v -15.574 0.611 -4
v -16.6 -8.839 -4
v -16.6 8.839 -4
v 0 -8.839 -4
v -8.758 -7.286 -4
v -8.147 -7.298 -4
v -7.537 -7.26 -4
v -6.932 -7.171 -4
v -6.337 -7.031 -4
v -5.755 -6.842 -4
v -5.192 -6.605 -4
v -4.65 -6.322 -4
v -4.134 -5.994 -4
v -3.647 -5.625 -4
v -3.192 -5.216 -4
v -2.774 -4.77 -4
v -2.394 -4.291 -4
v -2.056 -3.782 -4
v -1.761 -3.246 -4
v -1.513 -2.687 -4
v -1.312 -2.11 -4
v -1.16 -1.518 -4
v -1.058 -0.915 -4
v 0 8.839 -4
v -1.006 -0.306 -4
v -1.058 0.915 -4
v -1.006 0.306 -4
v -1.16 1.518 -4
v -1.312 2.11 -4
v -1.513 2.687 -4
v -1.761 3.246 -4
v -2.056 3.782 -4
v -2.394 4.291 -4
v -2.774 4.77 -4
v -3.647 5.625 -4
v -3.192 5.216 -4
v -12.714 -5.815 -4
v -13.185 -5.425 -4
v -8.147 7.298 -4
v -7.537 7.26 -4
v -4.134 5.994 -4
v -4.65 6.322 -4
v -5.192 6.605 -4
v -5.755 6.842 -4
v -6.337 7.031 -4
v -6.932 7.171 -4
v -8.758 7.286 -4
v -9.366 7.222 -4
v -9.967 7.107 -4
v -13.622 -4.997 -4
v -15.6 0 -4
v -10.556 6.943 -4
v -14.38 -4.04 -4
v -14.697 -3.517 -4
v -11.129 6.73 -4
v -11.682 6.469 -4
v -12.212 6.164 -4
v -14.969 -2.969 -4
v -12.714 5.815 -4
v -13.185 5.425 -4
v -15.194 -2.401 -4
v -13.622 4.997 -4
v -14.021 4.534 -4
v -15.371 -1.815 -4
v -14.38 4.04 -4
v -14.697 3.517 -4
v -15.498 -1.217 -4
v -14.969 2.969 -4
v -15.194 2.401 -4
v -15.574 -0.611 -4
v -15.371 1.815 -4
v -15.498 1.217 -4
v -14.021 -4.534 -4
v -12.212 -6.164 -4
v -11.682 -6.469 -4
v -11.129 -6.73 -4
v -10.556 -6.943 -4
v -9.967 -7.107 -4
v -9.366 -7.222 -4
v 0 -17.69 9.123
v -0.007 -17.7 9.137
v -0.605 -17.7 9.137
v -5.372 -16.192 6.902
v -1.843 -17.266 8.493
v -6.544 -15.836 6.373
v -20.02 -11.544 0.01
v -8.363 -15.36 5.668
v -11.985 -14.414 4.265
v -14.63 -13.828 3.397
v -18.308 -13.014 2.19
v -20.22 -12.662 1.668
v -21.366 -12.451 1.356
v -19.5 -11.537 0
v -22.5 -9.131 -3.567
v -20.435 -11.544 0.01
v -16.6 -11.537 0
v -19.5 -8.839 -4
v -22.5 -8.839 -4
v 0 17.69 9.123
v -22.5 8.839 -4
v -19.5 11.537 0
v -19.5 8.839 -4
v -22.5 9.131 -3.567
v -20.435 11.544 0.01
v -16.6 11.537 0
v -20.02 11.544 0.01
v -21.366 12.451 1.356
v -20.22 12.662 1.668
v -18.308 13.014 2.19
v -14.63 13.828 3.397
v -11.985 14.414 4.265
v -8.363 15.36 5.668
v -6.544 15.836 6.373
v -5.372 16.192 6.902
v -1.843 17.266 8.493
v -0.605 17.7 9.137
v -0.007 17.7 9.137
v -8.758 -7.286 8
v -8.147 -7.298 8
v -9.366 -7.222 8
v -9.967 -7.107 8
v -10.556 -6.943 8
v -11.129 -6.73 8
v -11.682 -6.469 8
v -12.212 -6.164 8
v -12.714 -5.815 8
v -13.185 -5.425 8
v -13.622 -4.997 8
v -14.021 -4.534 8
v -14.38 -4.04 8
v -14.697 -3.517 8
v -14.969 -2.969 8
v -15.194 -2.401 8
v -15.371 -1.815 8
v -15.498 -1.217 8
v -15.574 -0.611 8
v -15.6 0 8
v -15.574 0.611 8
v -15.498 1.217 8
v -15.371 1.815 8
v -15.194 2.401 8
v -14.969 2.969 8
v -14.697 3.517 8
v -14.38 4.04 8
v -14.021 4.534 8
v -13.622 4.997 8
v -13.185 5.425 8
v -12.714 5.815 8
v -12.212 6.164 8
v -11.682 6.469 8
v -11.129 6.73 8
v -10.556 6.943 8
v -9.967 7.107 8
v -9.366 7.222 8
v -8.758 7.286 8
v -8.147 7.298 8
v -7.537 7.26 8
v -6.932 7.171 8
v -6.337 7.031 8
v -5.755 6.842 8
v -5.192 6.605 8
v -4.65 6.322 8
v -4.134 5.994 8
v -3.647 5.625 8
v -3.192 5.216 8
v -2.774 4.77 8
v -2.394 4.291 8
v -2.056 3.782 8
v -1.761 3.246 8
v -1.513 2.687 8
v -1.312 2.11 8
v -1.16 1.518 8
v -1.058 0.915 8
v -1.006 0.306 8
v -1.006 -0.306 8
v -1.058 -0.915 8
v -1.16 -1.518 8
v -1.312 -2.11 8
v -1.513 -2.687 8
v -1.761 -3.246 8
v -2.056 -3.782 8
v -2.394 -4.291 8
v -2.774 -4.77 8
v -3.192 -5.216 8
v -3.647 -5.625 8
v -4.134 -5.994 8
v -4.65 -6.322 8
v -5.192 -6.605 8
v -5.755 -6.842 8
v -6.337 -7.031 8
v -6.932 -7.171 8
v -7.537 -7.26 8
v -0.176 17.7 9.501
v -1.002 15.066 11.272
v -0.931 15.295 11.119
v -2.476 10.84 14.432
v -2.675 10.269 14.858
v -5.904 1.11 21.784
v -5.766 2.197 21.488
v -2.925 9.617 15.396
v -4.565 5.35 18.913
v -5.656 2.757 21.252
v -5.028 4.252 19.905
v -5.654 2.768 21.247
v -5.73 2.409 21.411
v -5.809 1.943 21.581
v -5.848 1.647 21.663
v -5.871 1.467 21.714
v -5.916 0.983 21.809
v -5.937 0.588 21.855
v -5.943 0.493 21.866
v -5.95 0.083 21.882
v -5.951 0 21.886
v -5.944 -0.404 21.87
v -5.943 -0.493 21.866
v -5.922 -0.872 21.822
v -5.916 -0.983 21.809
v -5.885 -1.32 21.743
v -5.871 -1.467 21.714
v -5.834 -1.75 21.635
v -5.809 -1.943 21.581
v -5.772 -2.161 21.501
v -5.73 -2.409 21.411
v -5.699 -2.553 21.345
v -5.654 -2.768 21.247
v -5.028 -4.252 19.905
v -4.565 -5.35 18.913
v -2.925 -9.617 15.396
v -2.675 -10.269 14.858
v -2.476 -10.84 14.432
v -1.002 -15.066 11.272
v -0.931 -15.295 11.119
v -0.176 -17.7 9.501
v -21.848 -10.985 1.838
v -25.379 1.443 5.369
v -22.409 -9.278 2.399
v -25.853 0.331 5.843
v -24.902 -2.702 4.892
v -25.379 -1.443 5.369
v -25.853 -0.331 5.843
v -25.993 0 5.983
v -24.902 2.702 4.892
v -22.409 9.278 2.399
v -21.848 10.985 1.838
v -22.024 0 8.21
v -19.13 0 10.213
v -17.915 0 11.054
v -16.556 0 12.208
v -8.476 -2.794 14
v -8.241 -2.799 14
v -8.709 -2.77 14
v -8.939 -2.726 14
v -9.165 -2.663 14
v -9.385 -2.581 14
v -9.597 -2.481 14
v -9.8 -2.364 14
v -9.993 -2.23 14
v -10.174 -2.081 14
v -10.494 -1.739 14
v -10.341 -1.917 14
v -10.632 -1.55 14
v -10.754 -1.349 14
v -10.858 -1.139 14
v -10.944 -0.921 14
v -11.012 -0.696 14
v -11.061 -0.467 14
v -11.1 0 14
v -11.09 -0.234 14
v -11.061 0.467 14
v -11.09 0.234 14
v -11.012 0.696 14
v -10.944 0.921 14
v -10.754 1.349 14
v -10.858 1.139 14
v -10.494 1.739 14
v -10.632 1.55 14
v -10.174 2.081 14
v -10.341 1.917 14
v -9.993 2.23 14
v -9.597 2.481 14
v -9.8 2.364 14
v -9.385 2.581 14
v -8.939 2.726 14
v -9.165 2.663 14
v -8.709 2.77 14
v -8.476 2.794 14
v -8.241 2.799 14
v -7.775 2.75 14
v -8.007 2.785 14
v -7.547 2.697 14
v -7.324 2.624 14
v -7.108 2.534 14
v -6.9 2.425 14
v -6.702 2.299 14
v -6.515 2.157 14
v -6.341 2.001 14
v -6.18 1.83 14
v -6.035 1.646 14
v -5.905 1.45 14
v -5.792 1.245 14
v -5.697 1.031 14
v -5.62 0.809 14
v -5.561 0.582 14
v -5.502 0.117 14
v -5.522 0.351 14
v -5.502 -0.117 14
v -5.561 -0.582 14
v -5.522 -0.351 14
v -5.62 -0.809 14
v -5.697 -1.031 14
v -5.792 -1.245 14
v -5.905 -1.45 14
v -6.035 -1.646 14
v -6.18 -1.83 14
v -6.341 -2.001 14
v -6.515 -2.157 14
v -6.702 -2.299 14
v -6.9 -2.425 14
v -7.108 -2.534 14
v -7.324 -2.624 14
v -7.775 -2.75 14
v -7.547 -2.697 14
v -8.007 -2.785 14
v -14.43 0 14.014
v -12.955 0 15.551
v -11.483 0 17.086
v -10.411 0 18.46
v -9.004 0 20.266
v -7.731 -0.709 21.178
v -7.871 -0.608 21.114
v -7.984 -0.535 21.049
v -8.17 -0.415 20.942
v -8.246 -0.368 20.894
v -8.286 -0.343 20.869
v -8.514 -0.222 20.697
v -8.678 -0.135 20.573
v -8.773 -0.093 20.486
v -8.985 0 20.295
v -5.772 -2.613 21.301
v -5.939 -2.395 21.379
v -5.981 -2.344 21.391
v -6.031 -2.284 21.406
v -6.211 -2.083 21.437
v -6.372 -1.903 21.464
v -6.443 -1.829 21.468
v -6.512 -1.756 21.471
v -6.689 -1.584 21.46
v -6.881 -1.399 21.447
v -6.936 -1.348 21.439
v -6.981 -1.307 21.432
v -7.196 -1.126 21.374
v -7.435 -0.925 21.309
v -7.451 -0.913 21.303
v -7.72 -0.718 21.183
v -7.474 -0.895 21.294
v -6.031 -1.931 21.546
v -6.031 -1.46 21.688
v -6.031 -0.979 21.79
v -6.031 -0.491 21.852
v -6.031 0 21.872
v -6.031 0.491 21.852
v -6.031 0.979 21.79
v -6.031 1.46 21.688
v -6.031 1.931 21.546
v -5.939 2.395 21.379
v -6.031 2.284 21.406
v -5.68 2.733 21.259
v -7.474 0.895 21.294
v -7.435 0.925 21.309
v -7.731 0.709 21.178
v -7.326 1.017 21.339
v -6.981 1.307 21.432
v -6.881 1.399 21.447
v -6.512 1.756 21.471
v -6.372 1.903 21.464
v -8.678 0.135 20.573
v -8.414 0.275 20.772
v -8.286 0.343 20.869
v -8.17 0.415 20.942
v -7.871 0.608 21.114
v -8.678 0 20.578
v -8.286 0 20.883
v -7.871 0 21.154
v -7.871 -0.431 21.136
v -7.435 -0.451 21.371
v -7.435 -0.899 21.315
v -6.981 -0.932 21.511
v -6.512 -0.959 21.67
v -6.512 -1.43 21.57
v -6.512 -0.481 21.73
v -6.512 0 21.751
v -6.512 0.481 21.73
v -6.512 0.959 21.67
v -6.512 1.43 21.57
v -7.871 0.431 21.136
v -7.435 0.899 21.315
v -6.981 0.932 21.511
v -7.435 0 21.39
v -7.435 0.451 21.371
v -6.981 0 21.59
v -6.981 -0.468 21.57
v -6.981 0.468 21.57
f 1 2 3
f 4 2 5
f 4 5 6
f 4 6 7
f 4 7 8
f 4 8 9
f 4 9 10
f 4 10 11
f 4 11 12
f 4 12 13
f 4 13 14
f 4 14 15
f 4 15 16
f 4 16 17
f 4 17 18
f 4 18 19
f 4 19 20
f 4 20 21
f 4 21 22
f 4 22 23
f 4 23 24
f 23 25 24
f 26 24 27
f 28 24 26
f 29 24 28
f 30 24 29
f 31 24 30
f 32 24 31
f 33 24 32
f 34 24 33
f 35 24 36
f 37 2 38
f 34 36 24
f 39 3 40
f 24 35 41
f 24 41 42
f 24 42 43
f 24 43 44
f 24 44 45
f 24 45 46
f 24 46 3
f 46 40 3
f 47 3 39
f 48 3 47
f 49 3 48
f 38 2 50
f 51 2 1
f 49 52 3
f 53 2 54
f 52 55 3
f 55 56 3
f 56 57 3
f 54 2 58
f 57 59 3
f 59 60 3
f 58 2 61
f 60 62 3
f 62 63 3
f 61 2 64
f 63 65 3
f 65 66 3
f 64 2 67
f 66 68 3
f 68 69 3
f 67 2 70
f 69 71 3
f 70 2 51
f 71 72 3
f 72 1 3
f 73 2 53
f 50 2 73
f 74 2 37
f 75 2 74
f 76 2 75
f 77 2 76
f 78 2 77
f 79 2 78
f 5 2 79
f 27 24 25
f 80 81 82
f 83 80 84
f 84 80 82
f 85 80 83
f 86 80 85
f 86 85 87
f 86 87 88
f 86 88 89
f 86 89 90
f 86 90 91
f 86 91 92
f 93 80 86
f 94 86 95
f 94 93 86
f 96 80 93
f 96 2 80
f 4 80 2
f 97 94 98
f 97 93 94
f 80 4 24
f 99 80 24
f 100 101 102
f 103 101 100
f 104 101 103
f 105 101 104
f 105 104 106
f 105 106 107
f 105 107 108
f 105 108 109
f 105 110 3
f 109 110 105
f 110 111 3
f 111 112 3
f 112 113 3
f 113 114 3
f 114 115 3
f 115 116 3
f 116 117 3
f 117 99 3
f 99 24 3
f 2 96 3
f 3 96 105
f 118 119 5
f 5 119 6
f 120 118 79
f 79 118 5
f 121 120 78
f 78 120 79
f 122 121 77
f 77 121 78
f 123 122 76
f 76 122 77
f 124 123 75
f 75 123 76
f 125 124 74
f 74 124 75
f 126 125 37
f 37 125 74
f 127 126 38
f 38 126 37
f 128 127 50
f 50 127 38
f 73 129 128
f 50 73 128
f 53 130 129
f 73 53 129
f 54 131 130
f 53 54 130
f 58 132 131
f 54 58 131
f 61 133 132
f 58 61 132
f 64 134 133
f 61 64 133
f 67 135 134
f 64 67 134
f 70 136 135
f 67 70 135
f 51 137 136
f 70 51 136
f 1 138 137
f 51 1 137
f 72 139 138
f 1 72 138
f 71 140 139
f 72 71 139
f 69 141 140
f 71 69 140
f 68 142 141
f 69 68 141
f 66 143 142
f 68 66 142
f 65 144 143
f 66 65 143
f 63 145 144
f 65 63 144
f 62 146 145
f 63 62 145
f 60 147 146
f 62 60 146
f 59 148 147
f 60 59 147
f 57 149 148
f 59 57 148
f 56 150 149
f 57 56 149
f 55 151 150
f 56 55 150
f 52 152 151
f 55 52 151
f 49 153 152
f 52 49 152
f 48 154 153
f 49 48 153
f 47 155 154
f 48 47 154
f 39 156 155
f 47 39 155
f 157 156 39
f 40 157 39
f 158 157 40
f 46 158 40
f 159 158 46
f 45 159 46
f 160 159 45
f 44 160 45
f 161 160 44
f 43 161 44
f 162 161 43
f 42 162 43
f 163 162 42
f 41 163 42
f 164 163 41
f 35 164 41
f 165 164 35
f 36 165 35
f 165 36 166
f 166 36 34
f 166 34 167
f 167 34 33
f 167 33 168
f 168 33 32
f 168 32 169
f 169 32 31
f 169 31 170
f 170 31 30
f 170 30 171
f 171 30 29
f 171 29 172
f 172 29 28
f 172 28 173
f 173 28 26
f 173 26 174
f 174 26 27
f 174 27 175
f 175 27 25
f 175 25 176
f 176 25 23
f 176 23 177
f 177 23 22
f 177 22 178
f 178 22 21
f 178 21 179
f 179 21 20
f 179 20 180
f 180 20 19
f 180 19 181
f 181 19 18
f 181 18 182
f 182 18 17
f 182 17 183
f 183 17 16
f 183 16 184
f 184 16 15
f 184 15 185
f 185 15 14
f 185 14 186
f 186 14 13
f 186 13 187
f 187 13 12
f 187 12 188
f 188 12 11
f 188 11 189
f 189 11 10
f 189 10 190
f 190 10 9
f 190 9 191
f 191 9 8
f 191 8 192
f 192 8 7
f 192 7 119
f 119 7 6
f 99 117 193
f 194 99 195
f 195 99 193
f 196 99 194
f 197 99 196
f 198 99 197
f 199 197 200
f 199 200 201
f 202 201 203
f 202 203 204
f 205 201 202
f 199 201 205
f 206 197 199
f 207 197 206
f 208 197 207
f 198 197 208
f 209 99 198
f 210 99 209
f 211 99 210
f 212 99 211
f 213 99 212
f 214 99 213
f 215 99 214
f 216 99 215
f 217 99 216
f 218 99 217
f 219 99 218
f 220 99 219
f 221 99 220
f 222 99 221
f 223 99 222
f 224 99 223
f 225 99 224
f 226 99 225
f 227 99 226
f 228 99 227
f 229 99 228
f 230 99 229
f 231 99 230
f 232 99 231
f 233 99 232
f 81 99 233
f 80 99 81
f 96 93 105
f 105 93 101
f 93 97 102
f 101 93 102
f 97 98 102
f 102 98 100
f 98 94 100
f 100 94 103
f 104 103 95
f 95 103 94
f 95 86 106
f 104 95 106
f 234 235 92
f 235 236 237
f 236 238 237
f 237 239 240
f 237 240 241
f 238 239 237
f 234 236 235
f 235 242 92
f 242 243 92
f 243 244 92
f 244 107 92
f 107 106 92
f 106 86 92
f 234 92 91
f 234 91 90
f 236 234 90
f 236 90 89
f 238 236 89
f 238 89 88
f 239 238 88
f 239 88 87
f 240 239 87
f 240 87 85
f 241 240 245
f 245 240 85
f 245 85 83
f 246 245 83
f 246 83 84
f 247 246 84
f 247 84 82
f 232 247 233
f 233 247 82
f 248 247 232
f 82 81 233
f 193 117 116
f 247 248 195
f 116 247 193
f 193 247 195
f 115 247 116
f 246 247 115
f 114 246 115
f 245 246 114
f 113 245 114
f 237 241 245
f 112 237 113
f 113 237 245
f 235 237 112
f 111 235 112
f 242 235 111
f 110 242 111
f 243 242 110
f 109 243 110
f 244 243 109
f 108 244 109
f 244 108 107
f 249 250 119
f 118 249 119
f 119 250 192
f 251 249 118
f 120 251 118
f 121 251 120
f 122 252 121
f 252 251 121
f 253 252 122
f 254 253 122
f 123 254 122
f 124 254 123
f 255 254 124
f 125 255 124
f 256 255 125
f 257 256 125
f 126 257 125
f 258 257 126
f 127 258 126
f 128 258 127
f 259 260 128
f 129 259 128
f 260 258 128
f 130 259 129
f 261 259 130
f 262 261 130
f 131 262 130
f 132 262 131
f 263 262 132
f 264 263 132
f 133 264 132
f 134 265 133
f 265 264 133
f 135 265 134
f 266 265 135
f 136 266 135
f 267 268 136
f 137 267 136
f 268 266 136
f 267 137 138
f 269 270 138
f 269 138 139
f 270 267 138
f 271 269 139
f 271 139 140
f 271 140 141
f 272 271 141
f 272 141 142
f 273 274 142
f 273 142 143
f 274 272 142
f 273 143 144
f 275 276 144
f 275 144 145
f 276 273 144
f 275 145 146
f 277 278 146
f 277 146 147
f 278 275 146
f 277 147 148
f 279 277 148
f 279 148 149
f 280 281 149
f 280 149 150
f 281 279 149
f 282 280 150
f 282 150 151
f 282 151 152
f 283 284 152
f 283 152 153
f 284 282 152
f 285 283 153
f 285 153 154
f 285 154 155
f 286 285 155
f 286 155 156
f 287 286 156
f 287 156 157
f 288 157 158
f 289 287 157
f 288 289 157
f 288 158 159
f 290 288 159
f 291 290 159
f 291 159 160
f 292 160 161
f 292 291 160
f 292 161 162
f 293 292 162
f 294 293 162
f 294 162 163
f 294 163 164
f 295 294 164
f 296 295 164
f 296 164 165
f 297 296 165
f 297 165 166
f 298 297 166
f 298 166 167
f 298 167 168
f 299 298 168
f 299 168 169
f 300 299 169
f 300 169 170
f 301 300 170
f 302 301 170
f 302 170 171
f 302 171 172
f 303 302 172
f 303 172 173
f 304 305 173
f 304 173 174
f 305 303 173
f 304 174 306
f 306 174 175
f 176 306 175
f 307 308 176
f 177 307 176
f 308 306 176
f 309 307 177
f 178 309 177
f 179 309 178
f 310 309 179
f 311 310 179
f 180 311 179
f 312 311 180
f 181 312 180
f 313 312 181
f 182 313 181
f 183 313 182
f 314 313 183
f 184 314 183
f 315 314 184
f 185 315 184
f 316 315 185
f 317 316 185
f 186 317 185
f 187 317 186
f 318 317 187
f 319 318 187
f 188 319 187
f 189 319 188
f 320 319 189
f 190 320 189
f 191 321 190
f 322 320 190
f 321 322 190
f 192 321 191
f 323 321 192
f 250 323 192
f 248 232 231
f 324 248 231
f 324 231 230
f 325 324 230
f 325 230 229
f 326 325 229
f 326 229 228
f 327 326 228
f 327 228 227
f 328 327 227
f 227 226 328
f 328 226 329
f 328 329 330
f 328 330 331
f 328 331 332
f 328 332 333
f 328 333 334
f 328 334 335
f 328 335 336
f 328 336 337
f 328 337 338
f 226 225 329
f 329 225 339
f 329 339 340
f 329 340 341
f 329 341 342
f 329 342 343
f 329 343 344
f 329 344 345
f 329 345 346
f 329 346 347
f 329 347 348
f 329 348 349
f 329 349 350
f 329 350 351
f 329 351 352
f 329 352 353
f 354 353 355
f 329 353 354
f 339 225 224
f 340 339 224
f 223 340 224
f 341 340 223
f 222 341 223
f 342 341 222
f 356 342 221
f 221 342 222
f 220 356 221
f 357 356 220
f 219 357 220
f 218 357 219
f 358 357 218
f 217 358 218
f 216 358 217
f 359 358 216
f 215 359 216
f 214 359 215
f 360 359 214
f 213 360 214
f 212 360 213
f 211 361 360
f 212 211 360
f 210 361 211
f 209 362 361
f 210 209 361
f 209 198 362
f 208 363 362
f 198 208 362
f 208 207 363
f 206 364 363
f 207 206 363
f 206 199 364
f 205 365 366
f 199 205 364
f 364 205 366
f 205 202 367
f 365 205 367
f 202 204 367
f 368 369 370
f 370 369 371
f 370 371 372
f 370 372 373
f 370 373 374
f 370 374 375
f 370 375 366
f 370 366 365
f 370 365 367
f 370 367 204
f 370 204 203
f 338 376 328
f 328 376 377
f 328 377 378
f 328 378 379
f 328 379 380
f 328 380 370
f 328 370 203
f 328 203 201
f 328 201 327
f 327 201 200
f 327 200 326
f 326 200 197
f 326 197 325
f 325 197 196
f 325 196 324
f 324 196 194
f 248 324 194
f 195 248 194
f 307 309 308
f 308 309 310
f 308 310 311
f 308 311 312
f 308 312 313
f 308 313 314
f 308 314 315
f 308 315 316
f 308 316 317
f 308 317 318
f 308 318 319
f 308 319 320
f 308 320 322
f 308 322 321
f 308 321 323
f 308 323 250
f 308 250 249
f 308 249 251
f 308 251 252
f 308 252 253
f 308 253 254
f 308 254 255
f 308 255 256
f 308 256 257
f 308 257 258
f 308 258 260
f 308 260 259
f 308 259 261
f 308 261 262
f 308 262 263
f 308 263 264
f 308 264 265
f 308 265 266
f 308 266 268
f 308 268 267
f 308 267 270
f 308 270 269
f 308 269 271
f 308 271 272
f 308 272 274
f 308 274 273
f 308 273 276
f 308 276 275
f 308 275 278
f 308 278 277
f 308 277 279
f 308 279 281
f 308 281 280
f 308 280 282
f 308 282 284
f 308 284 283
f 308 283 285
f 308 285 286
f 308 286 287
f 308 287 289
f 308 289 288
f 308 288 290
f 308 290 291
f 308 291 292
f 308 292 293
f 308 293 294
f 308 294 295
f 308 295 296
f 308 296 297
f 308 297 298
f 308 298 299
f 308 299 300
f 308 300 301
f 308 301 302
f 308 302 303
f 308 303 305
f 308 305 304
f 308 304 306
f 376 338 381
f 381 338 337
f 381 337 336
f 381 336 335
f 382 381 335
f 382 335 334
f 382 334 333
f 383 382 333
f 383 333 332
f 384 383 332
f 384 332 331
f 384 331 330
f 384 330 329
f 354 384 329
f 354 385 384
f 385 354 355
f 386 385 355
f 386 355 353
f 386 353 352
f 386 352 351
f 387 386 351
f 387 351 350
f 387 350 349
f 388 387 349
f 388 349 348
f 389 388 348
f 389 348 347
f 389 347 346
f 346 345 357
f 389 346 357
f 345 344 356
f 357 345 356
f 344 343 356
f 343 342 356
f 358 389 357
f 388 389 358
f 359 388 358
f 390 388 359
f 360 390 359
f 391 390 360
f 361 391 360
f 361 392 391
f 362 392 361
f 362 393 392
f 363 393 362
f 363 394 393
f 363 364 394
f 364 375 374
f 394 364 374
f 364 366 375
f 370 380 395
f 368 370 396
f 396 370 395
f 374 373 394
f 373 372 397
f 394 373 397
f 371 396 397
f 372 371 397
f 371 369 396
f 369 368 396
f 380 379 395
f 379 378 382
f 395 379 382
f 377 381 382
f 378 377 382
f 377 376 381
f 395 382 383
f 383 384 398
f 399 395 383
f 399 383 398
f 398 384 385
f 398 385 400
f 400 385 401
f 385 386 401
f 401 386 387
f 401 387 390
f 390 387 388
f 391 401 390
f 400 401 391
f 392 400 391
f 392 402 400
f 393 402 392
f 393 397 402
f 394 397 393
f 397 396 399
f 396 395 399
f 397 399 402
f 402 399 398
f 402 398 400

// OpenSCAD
/**
 * Snow Plow Accessory designed for Brio/Thomas style wooden trains.
 *
 * This is designed to look more like the plow on the "Adventures of Thomas" train than
 * a real snow plow.  The tilted-up bottom edge of the blade is required to prevent it
 * from getting stuck when the toy train goes down a slope.
 *
 * Though I've found that this will stay connected to many trains without assistance, I
 * have left enough room inside of the magnet cavity to glue in a small ceramic magnet
 * like the ones available here:
 *
 *   http://www.cherrytreetoys.com/Ceramic-Magnet-P3616.aspx
 *
 * This OpenSCAD library is part of the [dotscad](https://github.com/dotscad/dotscad)
 * project, an open collection of modules and Things for 3d printing.  Please check there
 * for the latest versions of this and other related files.
 *
 * @copyright  Chris Petersen, 2014
 * @license    http://creativecommons.org/licenses/LGPL/2.1/
 * @license    http://creativecommons.org/licenses/by-sa/3.0/
 *
 * @see        http://www.thingiverse.com/thing:87677
 * @source     https://github.com/dotscad/trains/tree/master/accessories-wooden/snow-plow/
 */

//
// Customizer parameters and rendering
//

/* [Options] */

// Render support structure?
support = true;

/* [Hidden] */

snow_plow();

//
// Module code below:
//

module snow_plow($fn=75) {
    // Basic configuration
    w = 25.4; // Width of plow
    h = 22; // Height of plow
    d = 20;   // Depth (distance to tip) of plow (plus a little extra for the bullnose effect)
    // The height of the mounting block that extends behind the plow
    mount_height=h-5.4;
    // Radius of the hole to cut for the train's magnet to be insert into (adjusted for shrinkage)
    mount_radius = (mount_height/2)-1;
    magnet_radius = 6.8;

    /*
     * Creates one side of the curve of the plow blade.
     * Intended to be mirrored.
     */
    module half_cutout() {
      hull() {
        translate([70,34,h+10])
          scale(v=[1,1,.05])
              sphere(r=75);
        translate([46,52,0])
          scale(v=[1,1,.05])
            sphere(r=50);
      }
    }

    /*
     * Creates both sides of the curve of the plow blade.
     * Intended to be used with difference().
     */
    module cutout() {
      union() {
        mirror([0,1,0])
          half_cutout();
        half_cutout();
      }
    }

    /*
     * The plow blade
     */
    module blade() {
      difference() {
        translate([0,-w/2-5,0]) {
          union() {
            cube(size = [d,w+10,h+5]);
            // bullnose
            translate([d-4,w/2+5,4.8])
              sphere(6);
          }
        }
        cutout();
        // peak
        translate([-.01,-w/2-6,h-2]) rotate([0,-45,0])
            cube(size = [14,w+12,6]);
        // This tilts the tip of blade of the plow slightly upwards.
        translate([14,-w/2-6,-h])
          rotate(a=[0,-25,0])
            cube(size = [d*2,w+12,h]);
      }
    }

    /*
     * Plow blade and assembly to mount it to a wooden train.
     */
    rotate([0,-90,0]) {
        difference() {
            union() {
            difference() {
              union() {
                blade();
                 // magnet cavity holder
                translate([-4,-w/2,0])
                  cube(size = [5,w,mount_height]);
              }
              // Train-magnet cavity
              translate([4,0,mount_radius+(mount_height/2-mount_radius)])
                rotate([0,-90,0])
                  hull() {
                    translate([0,0,-4]) cylinder(r=mount_radius, h=14+1);
                    translate([0,0,-10])
                      cylinder(r=magnet_radius-4, h=14+1);
                  }
            }
            // Support blocks
            if (support) {
              translate([0,0,0]) difference() {
                union() {
                  // plow peak support
                  translate([-4,-w/2,h-2.5])
                    cube(size = [4.01,w,3]);
                }
                translate([-4,-w/2,h+.75]) rotate([0,30,0])
                  cube(size = [5,w+1,4]);
              }
            }
          }
          // edges
          translate([-6,-w/2+5.2+.01,-.1]) rotate([0,0,236])
            cube(size = [6,20,h+5]);
          translate([-6,w/2-5.2-.01,-.1]) rotate([0,0,34])
            cube(size = [20,6,h+5]);
        }
    }
}
